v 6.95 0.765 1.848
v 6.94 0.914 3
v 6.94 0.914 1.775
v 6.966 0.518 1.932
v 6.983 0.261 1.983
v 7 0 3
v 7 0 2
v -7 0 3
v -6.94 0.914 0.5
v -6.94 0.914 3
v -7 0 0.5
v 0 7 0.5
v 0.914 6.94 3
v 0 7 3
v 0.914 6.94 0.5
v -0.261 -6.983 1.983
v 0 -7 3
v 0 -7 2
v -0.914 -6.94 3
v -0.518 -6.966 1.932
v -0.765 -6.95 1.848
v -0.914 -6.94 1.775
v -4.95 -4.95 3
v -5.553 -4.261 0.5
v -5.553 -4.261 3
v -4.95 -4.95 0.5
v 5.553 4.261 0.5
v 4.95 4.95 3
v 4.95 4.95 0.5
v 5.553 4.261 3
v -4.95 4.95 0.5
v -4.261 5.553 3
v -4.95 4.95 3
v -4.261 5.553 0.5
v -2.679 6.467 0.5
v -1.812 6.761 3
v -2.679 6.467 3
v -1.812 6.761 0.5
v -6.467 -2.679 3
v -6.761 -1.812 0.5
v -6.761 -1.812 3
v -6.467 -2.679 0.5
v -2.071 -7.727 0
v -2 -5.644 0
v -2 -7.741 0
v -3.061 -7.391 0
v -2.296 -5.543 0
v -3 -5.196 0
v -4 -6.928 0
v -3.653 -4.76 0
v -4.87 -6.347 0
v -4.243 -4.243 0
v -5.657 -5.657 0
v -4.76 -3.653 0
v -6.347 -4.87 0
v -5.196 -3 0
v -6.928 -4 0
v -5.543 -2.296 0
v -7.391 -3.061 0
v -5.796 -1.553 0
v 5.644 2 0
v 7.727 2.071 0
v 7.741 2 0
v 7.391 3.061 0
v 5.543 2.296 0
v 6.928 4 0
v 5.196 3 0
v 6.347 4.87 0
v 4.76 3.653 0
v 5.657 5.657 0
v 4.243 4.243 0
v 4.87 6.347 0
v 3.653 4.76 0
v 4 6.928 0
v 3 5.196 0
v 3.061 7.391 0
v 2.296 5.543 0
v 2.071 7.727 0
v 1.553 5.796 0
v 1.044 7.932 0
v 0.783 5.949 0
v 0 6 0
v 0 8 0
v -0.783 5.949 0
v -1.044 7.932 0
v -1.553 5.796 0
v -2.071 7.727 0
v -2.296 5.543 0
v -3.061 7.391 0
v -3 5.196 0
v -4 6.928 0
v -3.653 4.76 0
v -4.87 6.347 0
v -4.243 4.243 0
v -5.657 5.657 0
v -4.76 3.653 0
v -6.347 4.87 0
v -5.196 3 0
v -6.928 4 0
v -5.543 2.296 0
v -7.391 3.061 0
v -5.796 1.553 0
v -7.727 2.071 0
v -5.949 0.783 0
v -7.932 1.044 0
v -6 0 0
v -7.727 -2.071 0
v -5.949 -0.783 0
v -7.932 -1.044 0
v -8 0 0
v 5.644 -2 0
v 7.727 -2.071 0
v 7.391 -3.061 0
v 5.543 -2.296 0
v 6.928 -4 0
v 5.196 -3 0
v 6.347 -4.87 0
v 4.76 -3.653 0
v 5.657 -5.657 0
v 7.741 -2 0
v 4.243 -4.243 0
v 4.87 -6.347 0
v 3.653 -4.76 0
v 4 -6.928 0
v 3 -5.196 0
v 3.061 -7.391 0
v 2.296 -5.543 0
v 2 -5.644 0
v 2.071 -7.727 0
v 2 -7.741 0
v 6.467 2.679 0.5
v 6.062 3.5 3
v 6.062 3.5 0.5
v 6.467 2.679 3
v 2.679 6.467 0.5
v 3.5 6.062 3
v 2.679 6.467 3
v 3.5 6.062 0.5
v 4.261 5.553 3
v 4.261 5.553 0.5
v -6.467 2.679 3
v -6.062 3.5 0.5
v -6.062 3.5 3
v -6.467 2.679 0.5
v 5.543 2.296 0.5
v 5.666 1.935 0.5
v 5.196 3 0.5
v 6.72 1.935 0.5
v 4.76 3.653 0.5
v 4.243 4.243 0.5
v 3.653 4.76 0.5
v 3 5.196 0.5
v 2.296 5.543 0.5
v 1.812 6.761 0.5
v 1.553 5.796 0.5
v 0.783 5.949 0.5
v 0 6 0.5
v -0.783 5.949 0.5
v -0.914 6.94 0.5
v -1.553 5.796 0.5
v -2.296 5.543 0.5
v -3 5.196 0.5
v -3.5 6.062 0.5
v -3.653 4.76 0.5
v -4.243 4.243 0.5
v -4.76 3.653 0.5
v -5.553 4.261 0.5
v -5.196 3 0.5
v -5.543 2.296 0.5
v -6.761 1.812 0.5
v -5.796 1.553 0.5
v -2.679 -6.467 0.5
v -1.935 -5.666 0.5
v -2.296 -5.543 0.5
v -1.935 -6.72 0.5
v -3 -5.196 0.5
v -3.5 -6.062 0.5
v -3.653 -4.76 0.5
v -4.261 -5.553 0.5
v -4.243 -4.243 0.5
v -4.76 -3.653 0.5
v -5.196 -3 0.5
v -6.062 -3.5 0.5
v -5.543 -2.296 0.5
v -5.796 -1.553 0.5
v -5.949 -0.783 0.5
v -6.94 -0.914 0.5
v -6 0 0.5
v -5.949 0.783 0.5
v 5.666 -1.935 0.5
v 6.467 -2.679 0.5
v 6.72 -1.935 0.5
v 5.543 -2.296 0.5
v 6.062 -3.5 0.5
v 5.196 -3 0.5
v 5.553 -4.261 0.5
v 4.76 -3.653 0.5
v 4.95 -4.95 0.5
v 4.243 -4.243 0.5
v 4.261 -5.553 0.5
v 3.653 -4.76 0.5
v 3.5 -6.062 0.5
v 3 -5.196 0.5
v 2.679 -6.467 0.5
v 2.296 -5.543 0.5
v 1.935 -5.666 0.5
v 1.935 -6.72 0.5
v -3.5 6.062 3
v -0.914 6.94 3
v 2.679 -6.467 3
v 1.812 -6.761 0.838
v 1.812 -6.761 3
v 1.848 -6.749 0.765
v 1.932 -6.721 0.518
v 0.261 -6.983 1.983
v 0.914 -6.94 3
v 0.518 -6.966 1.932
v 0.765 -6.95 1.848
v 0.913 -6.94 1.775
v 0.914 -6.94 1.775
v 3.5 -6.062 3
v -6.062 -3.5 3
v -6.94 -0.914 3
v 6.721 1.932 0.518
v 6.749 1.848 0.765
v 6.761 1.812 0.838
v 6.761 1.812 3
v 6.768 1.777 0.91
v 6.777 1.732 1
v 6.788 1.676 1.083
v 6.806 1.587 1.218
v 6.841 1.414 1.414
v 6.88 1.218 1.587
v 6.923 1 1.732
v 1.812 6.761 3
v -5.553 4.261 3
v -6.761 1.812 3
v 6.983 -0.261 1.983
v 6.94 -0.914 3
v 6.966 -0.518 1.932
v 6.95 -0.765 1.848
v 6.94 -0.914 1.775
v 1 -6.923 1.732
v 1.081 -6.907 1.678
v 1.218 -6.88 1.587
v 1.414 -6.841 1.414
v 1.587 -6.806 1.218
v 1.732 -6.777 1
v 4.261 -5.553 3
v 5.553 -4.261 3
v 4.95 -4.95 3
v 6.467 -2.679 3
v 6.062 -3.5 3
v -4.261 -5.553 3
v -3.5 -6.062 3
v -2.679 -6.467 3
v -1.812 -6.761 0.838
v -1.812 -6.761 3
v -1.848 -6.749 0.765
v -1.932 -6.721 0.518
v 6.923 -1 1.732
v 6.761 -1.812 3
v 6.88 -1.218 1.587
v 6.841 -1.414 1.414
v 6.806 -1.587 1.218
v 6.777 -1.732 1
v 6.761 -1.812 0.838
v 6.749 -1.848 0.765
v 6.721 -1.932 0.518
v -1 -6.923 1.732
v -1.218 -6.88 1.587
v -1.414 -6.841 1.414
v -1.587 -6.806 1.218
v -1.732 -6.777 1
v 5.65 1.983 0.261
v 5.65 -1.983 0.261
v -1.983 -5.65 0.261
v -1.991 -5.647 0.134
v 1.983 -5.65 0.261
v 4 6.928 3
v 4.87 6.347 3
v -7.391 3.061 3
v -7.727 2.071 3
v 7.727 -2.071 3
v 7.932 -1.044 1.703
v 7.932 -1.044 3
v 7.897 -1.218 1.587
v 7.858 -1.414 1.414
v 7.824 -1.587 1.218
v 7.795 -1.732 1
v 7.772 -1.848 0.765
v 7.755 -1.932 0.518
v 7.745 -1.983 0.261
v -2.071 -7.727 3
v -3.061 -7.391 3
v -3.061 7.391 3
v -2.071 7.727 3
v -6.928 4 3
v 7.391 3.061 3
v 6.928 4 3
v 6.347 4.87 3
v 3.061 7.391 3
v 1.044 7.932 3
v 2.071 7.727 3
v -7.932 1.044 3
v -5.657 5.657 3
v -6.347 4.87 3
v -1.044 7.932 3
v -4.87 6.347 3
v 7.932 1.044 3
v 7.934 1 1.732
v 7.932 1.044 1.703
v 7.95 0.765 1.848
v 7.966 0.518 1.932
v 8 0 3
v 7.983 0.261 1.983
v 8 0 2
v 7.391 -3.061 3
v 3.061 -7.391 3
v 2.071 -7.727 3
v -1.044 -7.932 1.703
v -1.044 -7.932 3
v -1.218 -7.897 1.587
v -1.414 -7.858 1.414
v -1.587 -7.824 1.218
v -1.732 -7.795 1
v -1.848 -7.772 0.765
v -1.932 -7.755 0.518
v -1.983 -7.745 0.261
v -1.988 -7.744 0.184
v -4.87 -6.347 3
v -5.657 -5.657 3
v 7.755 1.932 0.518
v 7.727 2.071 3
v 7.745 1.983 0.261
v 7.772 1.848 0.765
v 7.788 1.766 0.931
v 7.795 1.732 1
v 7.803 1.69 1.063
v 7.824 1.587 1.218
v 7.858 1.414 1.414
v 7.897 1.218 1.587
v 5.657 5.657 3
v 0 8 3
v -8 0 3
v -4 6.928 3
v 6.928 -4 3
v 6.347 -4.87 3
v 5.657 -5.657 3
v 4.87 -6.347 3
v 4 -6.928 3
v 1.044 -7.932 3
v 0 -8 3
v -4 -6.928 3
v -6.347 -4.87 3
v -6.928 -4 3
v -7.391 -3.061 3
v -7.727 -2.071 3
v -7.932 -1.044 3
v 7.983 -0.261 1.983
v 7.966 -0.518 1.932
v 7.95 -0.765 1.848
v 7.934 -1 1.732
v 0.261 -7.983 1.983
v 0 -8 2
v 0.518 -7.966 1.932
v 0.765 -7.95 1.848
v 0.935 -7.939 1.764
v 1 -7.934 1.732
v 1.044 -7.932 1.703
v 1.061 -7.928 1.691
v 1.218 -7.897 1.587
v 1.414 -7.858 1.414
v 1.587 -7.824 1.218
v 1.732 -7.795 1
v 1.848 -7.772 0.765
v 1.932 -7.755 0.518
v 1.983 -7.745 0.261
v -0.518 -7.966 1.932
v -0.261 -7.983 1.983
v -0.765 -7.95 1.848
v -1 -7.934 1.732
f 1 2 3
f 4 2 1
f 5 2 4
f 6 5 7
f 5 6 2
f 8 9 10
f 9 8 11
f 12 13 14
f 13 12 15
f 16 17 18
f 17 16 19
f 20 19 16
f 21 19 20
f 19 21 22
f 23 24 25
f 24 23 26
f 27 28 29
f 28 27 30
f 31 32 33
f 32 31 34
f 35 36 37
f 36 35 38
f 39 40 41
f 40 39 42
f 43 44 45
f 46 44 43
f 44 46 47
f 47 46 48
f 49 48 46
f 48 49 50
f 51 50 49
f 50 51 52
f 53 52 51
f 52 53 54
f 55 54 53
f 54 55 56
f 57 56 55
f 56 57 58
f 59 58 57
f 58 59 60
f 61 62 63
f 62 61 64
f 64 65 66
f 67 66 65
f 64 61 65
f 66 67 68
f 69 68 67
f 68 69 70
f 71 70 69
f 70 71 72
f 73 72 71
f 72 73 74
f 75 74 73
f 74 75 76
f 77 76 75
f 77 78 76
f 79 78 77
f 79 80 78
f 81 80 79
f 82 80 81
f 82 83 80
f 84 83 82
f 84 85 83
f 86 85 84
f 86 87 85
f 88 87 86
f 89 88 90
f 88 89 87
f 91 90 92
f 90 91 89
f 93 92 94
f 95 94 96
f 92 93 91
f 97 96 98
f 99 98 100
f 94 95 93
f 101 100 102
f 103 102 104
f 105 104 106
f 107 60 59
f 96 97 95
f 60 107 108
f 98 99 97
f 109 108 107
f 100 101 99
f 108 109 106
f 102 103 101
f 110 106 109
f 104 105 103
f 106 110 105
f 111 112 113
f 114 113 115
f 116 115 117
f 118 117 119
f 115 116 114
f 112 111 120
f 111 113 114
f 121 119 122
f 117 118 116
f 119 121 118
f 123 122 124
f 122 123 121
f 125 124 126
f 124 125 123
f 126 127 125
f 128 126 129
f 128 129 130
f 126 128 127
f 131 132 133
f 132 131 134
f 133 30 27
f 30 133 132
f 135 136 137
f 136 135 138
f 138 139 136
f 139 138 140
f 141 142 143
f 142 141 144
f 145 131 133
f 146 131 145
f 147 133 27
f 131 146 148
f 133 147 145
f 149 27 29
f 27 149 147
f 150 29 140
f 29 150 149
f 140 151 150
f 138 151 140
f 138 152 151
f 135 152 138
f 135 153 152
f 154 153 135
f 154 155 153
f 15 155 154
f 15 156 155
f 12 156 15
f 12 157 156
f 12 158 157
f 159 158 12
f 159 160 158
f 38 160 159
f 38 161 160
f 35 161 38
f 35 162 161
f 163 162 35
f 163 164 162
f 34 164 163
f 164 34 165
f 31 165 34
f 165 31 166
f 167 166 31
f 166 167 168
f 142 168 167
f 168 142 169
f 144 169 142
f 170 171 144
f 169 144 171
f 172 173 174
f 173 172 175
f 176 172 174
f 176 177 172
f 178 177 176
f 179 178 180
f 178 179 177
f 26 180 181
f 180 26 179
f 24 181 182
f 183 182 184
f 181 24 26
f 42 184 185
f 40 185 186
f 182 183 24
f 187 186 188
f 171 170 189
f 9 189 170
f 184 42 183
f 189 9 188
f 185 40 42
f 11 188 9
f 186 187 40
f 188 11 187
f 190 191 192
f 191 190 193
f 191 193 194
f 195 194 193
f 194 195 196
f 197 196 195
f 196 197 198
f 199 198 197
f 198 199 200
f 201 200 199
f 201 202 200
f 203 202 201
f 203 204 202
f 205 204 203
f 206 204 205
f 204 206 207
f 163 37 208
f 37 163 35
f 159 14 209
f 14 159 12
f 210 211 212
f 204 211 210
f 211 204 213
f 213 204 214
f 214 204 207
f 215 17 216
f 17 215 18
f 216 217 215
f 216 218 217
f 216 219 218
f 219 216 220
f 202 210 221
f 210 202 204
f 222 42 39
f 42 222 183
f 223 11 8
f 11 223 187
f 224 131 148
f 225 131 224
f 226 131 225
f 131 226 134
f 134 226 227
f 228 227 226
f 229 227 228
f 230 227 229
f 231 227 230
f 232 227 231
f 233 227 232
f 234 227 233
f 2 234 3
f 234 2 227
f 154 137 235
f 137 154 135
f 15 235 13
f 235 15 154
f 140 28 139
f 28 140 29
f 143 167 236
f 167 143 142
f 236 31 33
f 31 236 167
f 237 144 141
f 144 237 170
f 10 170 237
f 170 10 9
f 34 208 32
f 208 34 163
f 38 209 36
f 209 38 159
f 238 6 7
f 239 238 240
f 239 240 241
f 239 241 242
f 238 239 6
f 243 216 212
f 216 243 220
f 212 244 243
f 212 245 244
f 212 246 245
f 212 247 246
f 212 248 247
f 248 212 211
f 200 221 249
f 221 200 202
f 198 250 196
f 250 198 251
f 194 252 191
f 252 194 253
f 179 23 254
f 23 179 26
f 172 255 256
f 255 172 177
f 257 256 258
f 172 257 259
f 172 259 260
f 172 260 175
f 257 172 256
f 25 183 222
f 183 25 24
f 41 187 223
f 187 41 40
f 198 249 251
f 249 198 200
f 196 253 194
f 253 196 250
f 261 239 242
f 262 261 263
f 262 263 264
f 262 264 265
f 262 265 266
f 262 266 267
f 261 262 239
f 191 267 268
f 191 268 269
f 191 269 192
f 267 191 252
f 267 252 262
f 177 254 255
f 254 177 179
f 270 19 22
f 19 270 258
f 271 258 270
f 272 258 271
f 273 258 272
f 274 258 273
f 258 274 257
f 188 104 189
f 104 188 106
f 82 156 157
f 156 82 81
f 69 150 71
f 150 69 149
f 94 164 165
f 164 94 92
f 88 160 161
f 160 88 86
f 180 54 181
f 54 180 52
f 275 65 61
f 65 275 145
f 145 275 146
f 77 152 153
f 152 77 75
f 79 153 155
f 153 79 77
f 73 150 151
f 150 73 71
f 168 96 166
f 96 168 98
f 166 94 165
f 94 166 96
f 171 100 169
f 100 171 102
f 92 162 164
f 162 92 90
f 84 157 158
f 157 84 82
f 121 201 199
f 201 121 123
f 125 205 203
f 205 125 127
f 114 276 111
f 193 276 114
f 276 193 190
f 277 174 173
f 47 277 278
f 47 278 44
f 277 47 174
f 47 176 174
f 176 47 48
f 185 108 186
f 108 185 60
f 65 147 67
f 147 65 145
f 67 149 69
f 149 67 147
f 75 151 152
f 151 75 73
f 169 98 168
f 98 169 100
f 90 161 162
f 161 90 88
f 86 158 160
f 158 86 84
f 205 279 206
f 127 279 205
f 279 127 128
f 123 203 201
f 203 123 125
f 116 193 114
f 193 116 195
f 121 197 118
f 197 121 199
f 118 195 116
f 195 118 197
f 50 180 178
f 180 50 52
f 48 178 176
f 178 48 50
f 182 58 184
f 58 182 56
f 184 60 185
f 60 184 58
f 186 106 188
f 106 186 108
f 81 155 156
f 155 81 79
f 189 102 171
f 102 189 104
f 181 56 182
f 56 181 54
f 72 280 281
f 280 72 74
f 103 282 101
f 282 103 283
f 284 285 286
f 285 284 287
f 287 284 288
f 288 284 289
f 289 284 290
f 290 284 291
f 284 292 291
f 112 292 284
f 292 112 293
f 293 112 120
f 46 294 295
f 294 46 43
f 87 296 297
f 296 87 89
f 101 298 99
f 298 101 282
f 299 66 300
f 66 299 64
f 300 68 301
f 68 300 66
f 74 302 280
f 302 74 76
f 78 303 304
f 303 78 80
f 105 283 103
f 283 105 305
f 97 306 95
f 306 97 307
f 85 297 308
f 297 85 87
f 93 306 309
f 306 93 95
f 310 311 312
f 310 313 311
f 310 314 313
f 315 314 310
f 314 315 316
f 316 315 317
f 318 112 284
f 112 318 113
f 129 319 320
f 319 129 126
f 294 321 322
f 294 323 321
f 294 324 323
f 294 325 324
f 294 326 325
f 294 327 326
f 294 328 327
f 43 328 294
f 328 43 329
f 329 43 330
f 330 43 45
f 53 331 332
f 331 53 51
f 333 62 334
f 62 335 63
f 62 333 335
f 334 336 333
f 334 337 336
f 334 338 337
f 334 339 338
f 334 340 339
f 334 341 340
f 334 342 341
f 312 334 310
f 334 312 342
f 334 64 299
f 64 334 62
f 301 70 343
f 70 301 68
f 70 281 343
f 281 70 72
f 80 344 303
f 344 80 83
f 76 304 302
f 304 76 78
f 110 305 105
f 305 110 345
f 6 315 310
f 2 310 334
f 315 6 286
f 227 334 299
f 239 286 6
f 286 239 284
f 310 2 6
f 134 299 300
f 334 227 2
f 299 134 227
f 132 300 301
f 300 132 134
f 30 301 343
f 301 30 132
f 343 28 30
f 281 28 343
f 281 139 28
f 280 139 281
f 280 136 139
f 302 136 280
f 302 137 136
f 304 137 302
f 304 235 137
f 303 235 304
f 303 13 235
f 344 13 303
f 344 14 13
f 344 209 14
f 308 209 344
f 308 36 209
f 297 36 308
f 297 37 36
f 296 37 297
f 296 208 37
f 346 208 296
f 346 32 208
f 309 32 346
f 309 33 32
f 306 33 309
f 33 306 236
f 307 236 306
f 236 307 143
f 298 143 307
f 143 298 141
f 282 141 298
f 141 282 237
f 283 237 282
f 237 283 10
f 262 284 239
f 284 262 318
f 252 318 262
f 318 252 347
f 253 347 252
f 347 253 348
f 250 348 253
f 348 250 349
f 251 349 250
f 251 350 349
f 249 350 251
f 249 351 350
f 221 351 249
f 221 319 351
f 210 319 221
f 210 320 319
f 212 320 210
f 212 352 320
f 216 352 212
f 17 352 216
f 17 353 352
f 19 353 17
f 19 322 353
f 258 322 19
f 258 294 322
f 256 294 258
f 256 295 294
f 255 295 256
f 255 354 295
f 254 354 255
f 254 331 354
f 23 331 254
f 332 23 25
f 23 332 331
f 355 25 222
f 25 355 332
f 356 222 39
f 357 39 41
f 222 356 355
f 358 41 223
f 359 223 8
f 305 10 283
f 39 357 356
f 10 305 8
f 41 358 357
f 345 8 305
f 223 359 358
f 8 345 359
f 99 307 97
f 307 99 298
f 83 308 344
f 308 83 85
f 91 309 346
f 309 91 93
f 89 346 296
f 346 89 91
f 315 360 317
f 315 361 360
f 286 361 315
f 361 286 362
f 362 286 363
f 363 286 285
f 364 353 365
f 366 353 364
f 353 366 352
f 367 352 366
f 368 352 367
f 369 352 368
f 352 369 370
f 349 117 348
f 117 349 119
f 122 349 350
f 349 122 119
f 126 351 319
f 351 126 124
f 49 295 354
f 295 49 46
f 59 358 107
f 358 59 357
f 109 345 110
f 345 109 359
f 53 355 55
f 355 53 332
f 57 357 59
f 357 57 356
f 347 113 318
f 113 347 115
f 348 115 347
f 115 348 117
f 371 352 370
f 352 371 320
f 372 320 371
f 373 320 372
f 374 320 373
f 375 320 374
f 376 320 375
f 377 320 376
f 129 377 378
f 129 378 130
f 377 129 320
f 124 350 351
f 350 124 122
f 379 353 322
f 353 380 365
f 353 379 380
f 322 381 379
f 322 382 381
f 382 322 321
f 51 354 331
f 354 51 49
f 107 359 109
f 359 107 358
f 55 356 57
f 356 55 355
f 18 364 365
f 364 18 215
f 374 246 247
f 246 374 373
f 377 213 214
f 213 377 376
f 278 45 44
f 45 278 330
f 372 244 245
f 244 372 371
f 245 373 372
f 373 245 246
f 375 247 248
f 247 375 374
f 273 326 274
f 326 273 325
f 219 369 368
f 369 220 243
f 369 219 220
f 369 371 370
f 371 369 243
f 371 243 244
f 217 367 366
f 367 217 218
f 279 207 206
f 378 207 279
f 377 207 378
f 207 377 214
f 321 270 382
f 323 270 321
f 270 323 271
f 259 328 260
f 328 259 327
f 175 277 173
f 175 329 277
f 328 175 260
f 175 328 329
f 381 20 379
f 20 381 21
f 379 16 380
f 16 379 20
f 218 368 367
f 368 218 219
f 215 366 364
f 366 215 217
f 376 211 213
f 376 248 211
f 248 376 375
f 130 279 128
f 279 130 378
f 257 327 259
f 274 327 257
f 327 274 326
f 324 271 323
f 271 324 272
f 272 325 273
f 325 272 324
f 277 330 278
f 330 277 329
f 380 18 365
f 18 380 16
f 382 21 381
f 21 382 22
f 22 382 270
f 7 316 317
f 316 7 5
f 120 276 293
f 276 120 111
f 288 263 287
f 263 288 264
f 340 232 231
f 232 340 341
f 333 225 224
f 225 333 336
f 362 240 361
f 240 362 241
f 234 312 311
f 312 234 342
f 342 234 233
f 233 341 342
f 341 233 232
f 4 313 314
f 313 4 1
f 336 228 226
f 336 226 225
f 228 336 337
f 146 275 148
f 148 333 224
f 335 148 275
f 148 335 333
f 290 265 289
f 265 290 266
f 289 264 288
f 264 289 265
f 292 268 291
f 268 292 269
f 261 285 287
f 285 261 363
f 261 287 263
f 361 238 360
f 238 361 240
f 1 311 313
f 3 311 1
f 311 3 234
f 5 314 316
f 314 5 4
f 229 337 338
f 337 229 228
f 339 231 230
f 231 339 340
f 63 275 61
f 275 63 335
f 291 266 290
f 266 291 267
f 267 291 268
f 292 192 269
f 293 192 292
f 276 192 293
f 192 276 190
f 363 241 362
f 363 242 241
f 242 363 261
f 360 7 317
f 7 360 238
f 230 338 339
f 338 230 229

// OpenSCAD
// file: ../build_environments.scad
// build_environments.scad: modules to build level sections
//

module pool(diameter=10.0, wall_height=2.0, step_width=3.0, connections=[])
{
    difference() {
        union() {
        difference() {
            cylinder(h=0.5,r1=diameter+step_width,r2=diameter+step_width,$fn=48);
            translate([0,0,-0.1])
                cylinder(h=0.7,r1=diameter,r2=diameter,$fn=48);
        }
        difference() {
            cylinder(h=wall_height,r1=diameter+step_width+1.0,r2=diameter+step_width+1.0,$fn=48);
            translate([0,0,-0.1])
                cylinder(h=wall_height+0.2,r1=diameter+step_width,r2=diameter+step_width,$fn=48);
        }
        }
    
        for (c = connections)
        {
            rotate([0,90,0]) {
                angle = atan2(c[1],c[0]);
                rotate([-angle,0,0]) {
                    cylinder(h=diameter+5.0,r1=c[2],r2=c[2],$fn=48);
                }
            }
        }
    }
}

module straight(length=10.0, width=2.0, dy1=0.0, dy2=0.0, dz=0.0)
{
    dims = [0, 0, 0, 0, 0, (dz/length)];
    matrix = [
        [ 1, dims[0], dims[1], 0 ],
        [ dims[2], 1, dims[4], 0 ],
        [ dims[5], dims[3], 1, 0 ],
        [ 0, 0, 0, 1 ]
    ];
    multmatrix(matrix)
    difference() {
        translate([dy1,0,0])
        union() {
            rotate([0,90,0]) {
                difference() {
                    cylinder(h=(length-dy1-dy2),r1=width+1.0,r2=width+1.0,$fn=24);
                    translate([0,0,-0.1])
                        cylinder(h=(length-dy1-dy2+0.2),r1=width,r2=width,$fn=24);
                }
                difference() {
                    cylinder(h=1.0,r1=width+2.0,r2=width+2.0,$fn=24);
                    translate([0,0,-0.1])
                        cylinder(h=1.2,r1=width,r2=width,$fn=24);
                }
                translate([0,0,(length-dy1-dy2)-1.0]) {
                    difference() {
                        cylinder(h=1.0,r1=width+2.0,r2=width+2.0,$fn=24);
                        translate([0,0,-0.1])
                            cylinder(h=1.2,r1=width,r2=width,$fn=24);
                    }
                }
            }
        }
        translate([0,0,-(2*width+4.0)/2])
            cube([3*length,3*length,2*width+4.0],center=true);
    }
}

module curve(p0=[0,0], center=[0,0], dir=1, angle=0.0, width=2.0)
{
    radius = sqrt((p0[0]-center[0])*(p0[0]-center[0]) + (p0[1]-center[1])*(p0[1]-center[1]));
    if (dir == 0) {
        difference() {
            rotate([0,0,-90])
            difference() {
                rotate_extrude(angle = angle, convexity = 10, $fn=32)
                    translate([radius, 0, 0])
                        circle(r = width+1.0,$fn=24);
                rotate([0,0,-1.0])
                    rotate_extrude(angle = angle+2.0, convexity = 10, $fn=32)
                        translate([radius, 0, 0])
                            circle(r = width,$fn=24);
            }
            translate([0,0,-(2*width+4.0)/2])
                cube([5*radius,5*radius,2*width+4.0],center=true);
        }
    }
    else {
        difference() {
            rotate([0,0,90])
            difference() {
                rotate_extrude(angle = -angle, convexity = 10, $fn=32)
                    translate([radius, 0, 0])
                        circle(r = width+1.0,$fn=24);
                rotate([0,0,1.0])
                    rotate_extrude(angle = -angle-2.0, convexity = 10, $fn=32)
                        translate([radius, 0, 0])
                            circle(r = width,$fn=24);
            }
            translate([0,0,-(2*width+4.0)/2])
                cube([5*radius,5*radius,2*width+4.0],center=true);
        }
    }

}

// test pool
//pool(diameter=12.0000, wall_height=3.0000, step_width=3.0000, connections=[[0.0000,-26.0000,2.0000], [23.6074,0.0000,2.0000]]);

// test straight, slope
//straight(length=26.0000, width=2.0000, dy1=11.8322, dy2=6.7082, dz=0.0000);
//straight(length=29.1549, width=12.0000, dy1=0.0000, dy2=0.0000, dz=-15.0000);

// test curve
//curve(p0=[23.6074, 0.0000], center=[23.6074, 5.0000], dir=0, angle=60.1011, width=2.0000);
//curve(p0=[33.6426, 12.4219], center=[37.9771, 9.9295], dir=1, angle=120.4627, width=2.0000);
// main file
use <../build_environments.scad>;
pool(diameter=6.0000, wall_height=3.0000, step_width=1.0000, connections=[[0.0000,-16.0000,2.0000], [16.0000,0.0000,2.0000]]);
